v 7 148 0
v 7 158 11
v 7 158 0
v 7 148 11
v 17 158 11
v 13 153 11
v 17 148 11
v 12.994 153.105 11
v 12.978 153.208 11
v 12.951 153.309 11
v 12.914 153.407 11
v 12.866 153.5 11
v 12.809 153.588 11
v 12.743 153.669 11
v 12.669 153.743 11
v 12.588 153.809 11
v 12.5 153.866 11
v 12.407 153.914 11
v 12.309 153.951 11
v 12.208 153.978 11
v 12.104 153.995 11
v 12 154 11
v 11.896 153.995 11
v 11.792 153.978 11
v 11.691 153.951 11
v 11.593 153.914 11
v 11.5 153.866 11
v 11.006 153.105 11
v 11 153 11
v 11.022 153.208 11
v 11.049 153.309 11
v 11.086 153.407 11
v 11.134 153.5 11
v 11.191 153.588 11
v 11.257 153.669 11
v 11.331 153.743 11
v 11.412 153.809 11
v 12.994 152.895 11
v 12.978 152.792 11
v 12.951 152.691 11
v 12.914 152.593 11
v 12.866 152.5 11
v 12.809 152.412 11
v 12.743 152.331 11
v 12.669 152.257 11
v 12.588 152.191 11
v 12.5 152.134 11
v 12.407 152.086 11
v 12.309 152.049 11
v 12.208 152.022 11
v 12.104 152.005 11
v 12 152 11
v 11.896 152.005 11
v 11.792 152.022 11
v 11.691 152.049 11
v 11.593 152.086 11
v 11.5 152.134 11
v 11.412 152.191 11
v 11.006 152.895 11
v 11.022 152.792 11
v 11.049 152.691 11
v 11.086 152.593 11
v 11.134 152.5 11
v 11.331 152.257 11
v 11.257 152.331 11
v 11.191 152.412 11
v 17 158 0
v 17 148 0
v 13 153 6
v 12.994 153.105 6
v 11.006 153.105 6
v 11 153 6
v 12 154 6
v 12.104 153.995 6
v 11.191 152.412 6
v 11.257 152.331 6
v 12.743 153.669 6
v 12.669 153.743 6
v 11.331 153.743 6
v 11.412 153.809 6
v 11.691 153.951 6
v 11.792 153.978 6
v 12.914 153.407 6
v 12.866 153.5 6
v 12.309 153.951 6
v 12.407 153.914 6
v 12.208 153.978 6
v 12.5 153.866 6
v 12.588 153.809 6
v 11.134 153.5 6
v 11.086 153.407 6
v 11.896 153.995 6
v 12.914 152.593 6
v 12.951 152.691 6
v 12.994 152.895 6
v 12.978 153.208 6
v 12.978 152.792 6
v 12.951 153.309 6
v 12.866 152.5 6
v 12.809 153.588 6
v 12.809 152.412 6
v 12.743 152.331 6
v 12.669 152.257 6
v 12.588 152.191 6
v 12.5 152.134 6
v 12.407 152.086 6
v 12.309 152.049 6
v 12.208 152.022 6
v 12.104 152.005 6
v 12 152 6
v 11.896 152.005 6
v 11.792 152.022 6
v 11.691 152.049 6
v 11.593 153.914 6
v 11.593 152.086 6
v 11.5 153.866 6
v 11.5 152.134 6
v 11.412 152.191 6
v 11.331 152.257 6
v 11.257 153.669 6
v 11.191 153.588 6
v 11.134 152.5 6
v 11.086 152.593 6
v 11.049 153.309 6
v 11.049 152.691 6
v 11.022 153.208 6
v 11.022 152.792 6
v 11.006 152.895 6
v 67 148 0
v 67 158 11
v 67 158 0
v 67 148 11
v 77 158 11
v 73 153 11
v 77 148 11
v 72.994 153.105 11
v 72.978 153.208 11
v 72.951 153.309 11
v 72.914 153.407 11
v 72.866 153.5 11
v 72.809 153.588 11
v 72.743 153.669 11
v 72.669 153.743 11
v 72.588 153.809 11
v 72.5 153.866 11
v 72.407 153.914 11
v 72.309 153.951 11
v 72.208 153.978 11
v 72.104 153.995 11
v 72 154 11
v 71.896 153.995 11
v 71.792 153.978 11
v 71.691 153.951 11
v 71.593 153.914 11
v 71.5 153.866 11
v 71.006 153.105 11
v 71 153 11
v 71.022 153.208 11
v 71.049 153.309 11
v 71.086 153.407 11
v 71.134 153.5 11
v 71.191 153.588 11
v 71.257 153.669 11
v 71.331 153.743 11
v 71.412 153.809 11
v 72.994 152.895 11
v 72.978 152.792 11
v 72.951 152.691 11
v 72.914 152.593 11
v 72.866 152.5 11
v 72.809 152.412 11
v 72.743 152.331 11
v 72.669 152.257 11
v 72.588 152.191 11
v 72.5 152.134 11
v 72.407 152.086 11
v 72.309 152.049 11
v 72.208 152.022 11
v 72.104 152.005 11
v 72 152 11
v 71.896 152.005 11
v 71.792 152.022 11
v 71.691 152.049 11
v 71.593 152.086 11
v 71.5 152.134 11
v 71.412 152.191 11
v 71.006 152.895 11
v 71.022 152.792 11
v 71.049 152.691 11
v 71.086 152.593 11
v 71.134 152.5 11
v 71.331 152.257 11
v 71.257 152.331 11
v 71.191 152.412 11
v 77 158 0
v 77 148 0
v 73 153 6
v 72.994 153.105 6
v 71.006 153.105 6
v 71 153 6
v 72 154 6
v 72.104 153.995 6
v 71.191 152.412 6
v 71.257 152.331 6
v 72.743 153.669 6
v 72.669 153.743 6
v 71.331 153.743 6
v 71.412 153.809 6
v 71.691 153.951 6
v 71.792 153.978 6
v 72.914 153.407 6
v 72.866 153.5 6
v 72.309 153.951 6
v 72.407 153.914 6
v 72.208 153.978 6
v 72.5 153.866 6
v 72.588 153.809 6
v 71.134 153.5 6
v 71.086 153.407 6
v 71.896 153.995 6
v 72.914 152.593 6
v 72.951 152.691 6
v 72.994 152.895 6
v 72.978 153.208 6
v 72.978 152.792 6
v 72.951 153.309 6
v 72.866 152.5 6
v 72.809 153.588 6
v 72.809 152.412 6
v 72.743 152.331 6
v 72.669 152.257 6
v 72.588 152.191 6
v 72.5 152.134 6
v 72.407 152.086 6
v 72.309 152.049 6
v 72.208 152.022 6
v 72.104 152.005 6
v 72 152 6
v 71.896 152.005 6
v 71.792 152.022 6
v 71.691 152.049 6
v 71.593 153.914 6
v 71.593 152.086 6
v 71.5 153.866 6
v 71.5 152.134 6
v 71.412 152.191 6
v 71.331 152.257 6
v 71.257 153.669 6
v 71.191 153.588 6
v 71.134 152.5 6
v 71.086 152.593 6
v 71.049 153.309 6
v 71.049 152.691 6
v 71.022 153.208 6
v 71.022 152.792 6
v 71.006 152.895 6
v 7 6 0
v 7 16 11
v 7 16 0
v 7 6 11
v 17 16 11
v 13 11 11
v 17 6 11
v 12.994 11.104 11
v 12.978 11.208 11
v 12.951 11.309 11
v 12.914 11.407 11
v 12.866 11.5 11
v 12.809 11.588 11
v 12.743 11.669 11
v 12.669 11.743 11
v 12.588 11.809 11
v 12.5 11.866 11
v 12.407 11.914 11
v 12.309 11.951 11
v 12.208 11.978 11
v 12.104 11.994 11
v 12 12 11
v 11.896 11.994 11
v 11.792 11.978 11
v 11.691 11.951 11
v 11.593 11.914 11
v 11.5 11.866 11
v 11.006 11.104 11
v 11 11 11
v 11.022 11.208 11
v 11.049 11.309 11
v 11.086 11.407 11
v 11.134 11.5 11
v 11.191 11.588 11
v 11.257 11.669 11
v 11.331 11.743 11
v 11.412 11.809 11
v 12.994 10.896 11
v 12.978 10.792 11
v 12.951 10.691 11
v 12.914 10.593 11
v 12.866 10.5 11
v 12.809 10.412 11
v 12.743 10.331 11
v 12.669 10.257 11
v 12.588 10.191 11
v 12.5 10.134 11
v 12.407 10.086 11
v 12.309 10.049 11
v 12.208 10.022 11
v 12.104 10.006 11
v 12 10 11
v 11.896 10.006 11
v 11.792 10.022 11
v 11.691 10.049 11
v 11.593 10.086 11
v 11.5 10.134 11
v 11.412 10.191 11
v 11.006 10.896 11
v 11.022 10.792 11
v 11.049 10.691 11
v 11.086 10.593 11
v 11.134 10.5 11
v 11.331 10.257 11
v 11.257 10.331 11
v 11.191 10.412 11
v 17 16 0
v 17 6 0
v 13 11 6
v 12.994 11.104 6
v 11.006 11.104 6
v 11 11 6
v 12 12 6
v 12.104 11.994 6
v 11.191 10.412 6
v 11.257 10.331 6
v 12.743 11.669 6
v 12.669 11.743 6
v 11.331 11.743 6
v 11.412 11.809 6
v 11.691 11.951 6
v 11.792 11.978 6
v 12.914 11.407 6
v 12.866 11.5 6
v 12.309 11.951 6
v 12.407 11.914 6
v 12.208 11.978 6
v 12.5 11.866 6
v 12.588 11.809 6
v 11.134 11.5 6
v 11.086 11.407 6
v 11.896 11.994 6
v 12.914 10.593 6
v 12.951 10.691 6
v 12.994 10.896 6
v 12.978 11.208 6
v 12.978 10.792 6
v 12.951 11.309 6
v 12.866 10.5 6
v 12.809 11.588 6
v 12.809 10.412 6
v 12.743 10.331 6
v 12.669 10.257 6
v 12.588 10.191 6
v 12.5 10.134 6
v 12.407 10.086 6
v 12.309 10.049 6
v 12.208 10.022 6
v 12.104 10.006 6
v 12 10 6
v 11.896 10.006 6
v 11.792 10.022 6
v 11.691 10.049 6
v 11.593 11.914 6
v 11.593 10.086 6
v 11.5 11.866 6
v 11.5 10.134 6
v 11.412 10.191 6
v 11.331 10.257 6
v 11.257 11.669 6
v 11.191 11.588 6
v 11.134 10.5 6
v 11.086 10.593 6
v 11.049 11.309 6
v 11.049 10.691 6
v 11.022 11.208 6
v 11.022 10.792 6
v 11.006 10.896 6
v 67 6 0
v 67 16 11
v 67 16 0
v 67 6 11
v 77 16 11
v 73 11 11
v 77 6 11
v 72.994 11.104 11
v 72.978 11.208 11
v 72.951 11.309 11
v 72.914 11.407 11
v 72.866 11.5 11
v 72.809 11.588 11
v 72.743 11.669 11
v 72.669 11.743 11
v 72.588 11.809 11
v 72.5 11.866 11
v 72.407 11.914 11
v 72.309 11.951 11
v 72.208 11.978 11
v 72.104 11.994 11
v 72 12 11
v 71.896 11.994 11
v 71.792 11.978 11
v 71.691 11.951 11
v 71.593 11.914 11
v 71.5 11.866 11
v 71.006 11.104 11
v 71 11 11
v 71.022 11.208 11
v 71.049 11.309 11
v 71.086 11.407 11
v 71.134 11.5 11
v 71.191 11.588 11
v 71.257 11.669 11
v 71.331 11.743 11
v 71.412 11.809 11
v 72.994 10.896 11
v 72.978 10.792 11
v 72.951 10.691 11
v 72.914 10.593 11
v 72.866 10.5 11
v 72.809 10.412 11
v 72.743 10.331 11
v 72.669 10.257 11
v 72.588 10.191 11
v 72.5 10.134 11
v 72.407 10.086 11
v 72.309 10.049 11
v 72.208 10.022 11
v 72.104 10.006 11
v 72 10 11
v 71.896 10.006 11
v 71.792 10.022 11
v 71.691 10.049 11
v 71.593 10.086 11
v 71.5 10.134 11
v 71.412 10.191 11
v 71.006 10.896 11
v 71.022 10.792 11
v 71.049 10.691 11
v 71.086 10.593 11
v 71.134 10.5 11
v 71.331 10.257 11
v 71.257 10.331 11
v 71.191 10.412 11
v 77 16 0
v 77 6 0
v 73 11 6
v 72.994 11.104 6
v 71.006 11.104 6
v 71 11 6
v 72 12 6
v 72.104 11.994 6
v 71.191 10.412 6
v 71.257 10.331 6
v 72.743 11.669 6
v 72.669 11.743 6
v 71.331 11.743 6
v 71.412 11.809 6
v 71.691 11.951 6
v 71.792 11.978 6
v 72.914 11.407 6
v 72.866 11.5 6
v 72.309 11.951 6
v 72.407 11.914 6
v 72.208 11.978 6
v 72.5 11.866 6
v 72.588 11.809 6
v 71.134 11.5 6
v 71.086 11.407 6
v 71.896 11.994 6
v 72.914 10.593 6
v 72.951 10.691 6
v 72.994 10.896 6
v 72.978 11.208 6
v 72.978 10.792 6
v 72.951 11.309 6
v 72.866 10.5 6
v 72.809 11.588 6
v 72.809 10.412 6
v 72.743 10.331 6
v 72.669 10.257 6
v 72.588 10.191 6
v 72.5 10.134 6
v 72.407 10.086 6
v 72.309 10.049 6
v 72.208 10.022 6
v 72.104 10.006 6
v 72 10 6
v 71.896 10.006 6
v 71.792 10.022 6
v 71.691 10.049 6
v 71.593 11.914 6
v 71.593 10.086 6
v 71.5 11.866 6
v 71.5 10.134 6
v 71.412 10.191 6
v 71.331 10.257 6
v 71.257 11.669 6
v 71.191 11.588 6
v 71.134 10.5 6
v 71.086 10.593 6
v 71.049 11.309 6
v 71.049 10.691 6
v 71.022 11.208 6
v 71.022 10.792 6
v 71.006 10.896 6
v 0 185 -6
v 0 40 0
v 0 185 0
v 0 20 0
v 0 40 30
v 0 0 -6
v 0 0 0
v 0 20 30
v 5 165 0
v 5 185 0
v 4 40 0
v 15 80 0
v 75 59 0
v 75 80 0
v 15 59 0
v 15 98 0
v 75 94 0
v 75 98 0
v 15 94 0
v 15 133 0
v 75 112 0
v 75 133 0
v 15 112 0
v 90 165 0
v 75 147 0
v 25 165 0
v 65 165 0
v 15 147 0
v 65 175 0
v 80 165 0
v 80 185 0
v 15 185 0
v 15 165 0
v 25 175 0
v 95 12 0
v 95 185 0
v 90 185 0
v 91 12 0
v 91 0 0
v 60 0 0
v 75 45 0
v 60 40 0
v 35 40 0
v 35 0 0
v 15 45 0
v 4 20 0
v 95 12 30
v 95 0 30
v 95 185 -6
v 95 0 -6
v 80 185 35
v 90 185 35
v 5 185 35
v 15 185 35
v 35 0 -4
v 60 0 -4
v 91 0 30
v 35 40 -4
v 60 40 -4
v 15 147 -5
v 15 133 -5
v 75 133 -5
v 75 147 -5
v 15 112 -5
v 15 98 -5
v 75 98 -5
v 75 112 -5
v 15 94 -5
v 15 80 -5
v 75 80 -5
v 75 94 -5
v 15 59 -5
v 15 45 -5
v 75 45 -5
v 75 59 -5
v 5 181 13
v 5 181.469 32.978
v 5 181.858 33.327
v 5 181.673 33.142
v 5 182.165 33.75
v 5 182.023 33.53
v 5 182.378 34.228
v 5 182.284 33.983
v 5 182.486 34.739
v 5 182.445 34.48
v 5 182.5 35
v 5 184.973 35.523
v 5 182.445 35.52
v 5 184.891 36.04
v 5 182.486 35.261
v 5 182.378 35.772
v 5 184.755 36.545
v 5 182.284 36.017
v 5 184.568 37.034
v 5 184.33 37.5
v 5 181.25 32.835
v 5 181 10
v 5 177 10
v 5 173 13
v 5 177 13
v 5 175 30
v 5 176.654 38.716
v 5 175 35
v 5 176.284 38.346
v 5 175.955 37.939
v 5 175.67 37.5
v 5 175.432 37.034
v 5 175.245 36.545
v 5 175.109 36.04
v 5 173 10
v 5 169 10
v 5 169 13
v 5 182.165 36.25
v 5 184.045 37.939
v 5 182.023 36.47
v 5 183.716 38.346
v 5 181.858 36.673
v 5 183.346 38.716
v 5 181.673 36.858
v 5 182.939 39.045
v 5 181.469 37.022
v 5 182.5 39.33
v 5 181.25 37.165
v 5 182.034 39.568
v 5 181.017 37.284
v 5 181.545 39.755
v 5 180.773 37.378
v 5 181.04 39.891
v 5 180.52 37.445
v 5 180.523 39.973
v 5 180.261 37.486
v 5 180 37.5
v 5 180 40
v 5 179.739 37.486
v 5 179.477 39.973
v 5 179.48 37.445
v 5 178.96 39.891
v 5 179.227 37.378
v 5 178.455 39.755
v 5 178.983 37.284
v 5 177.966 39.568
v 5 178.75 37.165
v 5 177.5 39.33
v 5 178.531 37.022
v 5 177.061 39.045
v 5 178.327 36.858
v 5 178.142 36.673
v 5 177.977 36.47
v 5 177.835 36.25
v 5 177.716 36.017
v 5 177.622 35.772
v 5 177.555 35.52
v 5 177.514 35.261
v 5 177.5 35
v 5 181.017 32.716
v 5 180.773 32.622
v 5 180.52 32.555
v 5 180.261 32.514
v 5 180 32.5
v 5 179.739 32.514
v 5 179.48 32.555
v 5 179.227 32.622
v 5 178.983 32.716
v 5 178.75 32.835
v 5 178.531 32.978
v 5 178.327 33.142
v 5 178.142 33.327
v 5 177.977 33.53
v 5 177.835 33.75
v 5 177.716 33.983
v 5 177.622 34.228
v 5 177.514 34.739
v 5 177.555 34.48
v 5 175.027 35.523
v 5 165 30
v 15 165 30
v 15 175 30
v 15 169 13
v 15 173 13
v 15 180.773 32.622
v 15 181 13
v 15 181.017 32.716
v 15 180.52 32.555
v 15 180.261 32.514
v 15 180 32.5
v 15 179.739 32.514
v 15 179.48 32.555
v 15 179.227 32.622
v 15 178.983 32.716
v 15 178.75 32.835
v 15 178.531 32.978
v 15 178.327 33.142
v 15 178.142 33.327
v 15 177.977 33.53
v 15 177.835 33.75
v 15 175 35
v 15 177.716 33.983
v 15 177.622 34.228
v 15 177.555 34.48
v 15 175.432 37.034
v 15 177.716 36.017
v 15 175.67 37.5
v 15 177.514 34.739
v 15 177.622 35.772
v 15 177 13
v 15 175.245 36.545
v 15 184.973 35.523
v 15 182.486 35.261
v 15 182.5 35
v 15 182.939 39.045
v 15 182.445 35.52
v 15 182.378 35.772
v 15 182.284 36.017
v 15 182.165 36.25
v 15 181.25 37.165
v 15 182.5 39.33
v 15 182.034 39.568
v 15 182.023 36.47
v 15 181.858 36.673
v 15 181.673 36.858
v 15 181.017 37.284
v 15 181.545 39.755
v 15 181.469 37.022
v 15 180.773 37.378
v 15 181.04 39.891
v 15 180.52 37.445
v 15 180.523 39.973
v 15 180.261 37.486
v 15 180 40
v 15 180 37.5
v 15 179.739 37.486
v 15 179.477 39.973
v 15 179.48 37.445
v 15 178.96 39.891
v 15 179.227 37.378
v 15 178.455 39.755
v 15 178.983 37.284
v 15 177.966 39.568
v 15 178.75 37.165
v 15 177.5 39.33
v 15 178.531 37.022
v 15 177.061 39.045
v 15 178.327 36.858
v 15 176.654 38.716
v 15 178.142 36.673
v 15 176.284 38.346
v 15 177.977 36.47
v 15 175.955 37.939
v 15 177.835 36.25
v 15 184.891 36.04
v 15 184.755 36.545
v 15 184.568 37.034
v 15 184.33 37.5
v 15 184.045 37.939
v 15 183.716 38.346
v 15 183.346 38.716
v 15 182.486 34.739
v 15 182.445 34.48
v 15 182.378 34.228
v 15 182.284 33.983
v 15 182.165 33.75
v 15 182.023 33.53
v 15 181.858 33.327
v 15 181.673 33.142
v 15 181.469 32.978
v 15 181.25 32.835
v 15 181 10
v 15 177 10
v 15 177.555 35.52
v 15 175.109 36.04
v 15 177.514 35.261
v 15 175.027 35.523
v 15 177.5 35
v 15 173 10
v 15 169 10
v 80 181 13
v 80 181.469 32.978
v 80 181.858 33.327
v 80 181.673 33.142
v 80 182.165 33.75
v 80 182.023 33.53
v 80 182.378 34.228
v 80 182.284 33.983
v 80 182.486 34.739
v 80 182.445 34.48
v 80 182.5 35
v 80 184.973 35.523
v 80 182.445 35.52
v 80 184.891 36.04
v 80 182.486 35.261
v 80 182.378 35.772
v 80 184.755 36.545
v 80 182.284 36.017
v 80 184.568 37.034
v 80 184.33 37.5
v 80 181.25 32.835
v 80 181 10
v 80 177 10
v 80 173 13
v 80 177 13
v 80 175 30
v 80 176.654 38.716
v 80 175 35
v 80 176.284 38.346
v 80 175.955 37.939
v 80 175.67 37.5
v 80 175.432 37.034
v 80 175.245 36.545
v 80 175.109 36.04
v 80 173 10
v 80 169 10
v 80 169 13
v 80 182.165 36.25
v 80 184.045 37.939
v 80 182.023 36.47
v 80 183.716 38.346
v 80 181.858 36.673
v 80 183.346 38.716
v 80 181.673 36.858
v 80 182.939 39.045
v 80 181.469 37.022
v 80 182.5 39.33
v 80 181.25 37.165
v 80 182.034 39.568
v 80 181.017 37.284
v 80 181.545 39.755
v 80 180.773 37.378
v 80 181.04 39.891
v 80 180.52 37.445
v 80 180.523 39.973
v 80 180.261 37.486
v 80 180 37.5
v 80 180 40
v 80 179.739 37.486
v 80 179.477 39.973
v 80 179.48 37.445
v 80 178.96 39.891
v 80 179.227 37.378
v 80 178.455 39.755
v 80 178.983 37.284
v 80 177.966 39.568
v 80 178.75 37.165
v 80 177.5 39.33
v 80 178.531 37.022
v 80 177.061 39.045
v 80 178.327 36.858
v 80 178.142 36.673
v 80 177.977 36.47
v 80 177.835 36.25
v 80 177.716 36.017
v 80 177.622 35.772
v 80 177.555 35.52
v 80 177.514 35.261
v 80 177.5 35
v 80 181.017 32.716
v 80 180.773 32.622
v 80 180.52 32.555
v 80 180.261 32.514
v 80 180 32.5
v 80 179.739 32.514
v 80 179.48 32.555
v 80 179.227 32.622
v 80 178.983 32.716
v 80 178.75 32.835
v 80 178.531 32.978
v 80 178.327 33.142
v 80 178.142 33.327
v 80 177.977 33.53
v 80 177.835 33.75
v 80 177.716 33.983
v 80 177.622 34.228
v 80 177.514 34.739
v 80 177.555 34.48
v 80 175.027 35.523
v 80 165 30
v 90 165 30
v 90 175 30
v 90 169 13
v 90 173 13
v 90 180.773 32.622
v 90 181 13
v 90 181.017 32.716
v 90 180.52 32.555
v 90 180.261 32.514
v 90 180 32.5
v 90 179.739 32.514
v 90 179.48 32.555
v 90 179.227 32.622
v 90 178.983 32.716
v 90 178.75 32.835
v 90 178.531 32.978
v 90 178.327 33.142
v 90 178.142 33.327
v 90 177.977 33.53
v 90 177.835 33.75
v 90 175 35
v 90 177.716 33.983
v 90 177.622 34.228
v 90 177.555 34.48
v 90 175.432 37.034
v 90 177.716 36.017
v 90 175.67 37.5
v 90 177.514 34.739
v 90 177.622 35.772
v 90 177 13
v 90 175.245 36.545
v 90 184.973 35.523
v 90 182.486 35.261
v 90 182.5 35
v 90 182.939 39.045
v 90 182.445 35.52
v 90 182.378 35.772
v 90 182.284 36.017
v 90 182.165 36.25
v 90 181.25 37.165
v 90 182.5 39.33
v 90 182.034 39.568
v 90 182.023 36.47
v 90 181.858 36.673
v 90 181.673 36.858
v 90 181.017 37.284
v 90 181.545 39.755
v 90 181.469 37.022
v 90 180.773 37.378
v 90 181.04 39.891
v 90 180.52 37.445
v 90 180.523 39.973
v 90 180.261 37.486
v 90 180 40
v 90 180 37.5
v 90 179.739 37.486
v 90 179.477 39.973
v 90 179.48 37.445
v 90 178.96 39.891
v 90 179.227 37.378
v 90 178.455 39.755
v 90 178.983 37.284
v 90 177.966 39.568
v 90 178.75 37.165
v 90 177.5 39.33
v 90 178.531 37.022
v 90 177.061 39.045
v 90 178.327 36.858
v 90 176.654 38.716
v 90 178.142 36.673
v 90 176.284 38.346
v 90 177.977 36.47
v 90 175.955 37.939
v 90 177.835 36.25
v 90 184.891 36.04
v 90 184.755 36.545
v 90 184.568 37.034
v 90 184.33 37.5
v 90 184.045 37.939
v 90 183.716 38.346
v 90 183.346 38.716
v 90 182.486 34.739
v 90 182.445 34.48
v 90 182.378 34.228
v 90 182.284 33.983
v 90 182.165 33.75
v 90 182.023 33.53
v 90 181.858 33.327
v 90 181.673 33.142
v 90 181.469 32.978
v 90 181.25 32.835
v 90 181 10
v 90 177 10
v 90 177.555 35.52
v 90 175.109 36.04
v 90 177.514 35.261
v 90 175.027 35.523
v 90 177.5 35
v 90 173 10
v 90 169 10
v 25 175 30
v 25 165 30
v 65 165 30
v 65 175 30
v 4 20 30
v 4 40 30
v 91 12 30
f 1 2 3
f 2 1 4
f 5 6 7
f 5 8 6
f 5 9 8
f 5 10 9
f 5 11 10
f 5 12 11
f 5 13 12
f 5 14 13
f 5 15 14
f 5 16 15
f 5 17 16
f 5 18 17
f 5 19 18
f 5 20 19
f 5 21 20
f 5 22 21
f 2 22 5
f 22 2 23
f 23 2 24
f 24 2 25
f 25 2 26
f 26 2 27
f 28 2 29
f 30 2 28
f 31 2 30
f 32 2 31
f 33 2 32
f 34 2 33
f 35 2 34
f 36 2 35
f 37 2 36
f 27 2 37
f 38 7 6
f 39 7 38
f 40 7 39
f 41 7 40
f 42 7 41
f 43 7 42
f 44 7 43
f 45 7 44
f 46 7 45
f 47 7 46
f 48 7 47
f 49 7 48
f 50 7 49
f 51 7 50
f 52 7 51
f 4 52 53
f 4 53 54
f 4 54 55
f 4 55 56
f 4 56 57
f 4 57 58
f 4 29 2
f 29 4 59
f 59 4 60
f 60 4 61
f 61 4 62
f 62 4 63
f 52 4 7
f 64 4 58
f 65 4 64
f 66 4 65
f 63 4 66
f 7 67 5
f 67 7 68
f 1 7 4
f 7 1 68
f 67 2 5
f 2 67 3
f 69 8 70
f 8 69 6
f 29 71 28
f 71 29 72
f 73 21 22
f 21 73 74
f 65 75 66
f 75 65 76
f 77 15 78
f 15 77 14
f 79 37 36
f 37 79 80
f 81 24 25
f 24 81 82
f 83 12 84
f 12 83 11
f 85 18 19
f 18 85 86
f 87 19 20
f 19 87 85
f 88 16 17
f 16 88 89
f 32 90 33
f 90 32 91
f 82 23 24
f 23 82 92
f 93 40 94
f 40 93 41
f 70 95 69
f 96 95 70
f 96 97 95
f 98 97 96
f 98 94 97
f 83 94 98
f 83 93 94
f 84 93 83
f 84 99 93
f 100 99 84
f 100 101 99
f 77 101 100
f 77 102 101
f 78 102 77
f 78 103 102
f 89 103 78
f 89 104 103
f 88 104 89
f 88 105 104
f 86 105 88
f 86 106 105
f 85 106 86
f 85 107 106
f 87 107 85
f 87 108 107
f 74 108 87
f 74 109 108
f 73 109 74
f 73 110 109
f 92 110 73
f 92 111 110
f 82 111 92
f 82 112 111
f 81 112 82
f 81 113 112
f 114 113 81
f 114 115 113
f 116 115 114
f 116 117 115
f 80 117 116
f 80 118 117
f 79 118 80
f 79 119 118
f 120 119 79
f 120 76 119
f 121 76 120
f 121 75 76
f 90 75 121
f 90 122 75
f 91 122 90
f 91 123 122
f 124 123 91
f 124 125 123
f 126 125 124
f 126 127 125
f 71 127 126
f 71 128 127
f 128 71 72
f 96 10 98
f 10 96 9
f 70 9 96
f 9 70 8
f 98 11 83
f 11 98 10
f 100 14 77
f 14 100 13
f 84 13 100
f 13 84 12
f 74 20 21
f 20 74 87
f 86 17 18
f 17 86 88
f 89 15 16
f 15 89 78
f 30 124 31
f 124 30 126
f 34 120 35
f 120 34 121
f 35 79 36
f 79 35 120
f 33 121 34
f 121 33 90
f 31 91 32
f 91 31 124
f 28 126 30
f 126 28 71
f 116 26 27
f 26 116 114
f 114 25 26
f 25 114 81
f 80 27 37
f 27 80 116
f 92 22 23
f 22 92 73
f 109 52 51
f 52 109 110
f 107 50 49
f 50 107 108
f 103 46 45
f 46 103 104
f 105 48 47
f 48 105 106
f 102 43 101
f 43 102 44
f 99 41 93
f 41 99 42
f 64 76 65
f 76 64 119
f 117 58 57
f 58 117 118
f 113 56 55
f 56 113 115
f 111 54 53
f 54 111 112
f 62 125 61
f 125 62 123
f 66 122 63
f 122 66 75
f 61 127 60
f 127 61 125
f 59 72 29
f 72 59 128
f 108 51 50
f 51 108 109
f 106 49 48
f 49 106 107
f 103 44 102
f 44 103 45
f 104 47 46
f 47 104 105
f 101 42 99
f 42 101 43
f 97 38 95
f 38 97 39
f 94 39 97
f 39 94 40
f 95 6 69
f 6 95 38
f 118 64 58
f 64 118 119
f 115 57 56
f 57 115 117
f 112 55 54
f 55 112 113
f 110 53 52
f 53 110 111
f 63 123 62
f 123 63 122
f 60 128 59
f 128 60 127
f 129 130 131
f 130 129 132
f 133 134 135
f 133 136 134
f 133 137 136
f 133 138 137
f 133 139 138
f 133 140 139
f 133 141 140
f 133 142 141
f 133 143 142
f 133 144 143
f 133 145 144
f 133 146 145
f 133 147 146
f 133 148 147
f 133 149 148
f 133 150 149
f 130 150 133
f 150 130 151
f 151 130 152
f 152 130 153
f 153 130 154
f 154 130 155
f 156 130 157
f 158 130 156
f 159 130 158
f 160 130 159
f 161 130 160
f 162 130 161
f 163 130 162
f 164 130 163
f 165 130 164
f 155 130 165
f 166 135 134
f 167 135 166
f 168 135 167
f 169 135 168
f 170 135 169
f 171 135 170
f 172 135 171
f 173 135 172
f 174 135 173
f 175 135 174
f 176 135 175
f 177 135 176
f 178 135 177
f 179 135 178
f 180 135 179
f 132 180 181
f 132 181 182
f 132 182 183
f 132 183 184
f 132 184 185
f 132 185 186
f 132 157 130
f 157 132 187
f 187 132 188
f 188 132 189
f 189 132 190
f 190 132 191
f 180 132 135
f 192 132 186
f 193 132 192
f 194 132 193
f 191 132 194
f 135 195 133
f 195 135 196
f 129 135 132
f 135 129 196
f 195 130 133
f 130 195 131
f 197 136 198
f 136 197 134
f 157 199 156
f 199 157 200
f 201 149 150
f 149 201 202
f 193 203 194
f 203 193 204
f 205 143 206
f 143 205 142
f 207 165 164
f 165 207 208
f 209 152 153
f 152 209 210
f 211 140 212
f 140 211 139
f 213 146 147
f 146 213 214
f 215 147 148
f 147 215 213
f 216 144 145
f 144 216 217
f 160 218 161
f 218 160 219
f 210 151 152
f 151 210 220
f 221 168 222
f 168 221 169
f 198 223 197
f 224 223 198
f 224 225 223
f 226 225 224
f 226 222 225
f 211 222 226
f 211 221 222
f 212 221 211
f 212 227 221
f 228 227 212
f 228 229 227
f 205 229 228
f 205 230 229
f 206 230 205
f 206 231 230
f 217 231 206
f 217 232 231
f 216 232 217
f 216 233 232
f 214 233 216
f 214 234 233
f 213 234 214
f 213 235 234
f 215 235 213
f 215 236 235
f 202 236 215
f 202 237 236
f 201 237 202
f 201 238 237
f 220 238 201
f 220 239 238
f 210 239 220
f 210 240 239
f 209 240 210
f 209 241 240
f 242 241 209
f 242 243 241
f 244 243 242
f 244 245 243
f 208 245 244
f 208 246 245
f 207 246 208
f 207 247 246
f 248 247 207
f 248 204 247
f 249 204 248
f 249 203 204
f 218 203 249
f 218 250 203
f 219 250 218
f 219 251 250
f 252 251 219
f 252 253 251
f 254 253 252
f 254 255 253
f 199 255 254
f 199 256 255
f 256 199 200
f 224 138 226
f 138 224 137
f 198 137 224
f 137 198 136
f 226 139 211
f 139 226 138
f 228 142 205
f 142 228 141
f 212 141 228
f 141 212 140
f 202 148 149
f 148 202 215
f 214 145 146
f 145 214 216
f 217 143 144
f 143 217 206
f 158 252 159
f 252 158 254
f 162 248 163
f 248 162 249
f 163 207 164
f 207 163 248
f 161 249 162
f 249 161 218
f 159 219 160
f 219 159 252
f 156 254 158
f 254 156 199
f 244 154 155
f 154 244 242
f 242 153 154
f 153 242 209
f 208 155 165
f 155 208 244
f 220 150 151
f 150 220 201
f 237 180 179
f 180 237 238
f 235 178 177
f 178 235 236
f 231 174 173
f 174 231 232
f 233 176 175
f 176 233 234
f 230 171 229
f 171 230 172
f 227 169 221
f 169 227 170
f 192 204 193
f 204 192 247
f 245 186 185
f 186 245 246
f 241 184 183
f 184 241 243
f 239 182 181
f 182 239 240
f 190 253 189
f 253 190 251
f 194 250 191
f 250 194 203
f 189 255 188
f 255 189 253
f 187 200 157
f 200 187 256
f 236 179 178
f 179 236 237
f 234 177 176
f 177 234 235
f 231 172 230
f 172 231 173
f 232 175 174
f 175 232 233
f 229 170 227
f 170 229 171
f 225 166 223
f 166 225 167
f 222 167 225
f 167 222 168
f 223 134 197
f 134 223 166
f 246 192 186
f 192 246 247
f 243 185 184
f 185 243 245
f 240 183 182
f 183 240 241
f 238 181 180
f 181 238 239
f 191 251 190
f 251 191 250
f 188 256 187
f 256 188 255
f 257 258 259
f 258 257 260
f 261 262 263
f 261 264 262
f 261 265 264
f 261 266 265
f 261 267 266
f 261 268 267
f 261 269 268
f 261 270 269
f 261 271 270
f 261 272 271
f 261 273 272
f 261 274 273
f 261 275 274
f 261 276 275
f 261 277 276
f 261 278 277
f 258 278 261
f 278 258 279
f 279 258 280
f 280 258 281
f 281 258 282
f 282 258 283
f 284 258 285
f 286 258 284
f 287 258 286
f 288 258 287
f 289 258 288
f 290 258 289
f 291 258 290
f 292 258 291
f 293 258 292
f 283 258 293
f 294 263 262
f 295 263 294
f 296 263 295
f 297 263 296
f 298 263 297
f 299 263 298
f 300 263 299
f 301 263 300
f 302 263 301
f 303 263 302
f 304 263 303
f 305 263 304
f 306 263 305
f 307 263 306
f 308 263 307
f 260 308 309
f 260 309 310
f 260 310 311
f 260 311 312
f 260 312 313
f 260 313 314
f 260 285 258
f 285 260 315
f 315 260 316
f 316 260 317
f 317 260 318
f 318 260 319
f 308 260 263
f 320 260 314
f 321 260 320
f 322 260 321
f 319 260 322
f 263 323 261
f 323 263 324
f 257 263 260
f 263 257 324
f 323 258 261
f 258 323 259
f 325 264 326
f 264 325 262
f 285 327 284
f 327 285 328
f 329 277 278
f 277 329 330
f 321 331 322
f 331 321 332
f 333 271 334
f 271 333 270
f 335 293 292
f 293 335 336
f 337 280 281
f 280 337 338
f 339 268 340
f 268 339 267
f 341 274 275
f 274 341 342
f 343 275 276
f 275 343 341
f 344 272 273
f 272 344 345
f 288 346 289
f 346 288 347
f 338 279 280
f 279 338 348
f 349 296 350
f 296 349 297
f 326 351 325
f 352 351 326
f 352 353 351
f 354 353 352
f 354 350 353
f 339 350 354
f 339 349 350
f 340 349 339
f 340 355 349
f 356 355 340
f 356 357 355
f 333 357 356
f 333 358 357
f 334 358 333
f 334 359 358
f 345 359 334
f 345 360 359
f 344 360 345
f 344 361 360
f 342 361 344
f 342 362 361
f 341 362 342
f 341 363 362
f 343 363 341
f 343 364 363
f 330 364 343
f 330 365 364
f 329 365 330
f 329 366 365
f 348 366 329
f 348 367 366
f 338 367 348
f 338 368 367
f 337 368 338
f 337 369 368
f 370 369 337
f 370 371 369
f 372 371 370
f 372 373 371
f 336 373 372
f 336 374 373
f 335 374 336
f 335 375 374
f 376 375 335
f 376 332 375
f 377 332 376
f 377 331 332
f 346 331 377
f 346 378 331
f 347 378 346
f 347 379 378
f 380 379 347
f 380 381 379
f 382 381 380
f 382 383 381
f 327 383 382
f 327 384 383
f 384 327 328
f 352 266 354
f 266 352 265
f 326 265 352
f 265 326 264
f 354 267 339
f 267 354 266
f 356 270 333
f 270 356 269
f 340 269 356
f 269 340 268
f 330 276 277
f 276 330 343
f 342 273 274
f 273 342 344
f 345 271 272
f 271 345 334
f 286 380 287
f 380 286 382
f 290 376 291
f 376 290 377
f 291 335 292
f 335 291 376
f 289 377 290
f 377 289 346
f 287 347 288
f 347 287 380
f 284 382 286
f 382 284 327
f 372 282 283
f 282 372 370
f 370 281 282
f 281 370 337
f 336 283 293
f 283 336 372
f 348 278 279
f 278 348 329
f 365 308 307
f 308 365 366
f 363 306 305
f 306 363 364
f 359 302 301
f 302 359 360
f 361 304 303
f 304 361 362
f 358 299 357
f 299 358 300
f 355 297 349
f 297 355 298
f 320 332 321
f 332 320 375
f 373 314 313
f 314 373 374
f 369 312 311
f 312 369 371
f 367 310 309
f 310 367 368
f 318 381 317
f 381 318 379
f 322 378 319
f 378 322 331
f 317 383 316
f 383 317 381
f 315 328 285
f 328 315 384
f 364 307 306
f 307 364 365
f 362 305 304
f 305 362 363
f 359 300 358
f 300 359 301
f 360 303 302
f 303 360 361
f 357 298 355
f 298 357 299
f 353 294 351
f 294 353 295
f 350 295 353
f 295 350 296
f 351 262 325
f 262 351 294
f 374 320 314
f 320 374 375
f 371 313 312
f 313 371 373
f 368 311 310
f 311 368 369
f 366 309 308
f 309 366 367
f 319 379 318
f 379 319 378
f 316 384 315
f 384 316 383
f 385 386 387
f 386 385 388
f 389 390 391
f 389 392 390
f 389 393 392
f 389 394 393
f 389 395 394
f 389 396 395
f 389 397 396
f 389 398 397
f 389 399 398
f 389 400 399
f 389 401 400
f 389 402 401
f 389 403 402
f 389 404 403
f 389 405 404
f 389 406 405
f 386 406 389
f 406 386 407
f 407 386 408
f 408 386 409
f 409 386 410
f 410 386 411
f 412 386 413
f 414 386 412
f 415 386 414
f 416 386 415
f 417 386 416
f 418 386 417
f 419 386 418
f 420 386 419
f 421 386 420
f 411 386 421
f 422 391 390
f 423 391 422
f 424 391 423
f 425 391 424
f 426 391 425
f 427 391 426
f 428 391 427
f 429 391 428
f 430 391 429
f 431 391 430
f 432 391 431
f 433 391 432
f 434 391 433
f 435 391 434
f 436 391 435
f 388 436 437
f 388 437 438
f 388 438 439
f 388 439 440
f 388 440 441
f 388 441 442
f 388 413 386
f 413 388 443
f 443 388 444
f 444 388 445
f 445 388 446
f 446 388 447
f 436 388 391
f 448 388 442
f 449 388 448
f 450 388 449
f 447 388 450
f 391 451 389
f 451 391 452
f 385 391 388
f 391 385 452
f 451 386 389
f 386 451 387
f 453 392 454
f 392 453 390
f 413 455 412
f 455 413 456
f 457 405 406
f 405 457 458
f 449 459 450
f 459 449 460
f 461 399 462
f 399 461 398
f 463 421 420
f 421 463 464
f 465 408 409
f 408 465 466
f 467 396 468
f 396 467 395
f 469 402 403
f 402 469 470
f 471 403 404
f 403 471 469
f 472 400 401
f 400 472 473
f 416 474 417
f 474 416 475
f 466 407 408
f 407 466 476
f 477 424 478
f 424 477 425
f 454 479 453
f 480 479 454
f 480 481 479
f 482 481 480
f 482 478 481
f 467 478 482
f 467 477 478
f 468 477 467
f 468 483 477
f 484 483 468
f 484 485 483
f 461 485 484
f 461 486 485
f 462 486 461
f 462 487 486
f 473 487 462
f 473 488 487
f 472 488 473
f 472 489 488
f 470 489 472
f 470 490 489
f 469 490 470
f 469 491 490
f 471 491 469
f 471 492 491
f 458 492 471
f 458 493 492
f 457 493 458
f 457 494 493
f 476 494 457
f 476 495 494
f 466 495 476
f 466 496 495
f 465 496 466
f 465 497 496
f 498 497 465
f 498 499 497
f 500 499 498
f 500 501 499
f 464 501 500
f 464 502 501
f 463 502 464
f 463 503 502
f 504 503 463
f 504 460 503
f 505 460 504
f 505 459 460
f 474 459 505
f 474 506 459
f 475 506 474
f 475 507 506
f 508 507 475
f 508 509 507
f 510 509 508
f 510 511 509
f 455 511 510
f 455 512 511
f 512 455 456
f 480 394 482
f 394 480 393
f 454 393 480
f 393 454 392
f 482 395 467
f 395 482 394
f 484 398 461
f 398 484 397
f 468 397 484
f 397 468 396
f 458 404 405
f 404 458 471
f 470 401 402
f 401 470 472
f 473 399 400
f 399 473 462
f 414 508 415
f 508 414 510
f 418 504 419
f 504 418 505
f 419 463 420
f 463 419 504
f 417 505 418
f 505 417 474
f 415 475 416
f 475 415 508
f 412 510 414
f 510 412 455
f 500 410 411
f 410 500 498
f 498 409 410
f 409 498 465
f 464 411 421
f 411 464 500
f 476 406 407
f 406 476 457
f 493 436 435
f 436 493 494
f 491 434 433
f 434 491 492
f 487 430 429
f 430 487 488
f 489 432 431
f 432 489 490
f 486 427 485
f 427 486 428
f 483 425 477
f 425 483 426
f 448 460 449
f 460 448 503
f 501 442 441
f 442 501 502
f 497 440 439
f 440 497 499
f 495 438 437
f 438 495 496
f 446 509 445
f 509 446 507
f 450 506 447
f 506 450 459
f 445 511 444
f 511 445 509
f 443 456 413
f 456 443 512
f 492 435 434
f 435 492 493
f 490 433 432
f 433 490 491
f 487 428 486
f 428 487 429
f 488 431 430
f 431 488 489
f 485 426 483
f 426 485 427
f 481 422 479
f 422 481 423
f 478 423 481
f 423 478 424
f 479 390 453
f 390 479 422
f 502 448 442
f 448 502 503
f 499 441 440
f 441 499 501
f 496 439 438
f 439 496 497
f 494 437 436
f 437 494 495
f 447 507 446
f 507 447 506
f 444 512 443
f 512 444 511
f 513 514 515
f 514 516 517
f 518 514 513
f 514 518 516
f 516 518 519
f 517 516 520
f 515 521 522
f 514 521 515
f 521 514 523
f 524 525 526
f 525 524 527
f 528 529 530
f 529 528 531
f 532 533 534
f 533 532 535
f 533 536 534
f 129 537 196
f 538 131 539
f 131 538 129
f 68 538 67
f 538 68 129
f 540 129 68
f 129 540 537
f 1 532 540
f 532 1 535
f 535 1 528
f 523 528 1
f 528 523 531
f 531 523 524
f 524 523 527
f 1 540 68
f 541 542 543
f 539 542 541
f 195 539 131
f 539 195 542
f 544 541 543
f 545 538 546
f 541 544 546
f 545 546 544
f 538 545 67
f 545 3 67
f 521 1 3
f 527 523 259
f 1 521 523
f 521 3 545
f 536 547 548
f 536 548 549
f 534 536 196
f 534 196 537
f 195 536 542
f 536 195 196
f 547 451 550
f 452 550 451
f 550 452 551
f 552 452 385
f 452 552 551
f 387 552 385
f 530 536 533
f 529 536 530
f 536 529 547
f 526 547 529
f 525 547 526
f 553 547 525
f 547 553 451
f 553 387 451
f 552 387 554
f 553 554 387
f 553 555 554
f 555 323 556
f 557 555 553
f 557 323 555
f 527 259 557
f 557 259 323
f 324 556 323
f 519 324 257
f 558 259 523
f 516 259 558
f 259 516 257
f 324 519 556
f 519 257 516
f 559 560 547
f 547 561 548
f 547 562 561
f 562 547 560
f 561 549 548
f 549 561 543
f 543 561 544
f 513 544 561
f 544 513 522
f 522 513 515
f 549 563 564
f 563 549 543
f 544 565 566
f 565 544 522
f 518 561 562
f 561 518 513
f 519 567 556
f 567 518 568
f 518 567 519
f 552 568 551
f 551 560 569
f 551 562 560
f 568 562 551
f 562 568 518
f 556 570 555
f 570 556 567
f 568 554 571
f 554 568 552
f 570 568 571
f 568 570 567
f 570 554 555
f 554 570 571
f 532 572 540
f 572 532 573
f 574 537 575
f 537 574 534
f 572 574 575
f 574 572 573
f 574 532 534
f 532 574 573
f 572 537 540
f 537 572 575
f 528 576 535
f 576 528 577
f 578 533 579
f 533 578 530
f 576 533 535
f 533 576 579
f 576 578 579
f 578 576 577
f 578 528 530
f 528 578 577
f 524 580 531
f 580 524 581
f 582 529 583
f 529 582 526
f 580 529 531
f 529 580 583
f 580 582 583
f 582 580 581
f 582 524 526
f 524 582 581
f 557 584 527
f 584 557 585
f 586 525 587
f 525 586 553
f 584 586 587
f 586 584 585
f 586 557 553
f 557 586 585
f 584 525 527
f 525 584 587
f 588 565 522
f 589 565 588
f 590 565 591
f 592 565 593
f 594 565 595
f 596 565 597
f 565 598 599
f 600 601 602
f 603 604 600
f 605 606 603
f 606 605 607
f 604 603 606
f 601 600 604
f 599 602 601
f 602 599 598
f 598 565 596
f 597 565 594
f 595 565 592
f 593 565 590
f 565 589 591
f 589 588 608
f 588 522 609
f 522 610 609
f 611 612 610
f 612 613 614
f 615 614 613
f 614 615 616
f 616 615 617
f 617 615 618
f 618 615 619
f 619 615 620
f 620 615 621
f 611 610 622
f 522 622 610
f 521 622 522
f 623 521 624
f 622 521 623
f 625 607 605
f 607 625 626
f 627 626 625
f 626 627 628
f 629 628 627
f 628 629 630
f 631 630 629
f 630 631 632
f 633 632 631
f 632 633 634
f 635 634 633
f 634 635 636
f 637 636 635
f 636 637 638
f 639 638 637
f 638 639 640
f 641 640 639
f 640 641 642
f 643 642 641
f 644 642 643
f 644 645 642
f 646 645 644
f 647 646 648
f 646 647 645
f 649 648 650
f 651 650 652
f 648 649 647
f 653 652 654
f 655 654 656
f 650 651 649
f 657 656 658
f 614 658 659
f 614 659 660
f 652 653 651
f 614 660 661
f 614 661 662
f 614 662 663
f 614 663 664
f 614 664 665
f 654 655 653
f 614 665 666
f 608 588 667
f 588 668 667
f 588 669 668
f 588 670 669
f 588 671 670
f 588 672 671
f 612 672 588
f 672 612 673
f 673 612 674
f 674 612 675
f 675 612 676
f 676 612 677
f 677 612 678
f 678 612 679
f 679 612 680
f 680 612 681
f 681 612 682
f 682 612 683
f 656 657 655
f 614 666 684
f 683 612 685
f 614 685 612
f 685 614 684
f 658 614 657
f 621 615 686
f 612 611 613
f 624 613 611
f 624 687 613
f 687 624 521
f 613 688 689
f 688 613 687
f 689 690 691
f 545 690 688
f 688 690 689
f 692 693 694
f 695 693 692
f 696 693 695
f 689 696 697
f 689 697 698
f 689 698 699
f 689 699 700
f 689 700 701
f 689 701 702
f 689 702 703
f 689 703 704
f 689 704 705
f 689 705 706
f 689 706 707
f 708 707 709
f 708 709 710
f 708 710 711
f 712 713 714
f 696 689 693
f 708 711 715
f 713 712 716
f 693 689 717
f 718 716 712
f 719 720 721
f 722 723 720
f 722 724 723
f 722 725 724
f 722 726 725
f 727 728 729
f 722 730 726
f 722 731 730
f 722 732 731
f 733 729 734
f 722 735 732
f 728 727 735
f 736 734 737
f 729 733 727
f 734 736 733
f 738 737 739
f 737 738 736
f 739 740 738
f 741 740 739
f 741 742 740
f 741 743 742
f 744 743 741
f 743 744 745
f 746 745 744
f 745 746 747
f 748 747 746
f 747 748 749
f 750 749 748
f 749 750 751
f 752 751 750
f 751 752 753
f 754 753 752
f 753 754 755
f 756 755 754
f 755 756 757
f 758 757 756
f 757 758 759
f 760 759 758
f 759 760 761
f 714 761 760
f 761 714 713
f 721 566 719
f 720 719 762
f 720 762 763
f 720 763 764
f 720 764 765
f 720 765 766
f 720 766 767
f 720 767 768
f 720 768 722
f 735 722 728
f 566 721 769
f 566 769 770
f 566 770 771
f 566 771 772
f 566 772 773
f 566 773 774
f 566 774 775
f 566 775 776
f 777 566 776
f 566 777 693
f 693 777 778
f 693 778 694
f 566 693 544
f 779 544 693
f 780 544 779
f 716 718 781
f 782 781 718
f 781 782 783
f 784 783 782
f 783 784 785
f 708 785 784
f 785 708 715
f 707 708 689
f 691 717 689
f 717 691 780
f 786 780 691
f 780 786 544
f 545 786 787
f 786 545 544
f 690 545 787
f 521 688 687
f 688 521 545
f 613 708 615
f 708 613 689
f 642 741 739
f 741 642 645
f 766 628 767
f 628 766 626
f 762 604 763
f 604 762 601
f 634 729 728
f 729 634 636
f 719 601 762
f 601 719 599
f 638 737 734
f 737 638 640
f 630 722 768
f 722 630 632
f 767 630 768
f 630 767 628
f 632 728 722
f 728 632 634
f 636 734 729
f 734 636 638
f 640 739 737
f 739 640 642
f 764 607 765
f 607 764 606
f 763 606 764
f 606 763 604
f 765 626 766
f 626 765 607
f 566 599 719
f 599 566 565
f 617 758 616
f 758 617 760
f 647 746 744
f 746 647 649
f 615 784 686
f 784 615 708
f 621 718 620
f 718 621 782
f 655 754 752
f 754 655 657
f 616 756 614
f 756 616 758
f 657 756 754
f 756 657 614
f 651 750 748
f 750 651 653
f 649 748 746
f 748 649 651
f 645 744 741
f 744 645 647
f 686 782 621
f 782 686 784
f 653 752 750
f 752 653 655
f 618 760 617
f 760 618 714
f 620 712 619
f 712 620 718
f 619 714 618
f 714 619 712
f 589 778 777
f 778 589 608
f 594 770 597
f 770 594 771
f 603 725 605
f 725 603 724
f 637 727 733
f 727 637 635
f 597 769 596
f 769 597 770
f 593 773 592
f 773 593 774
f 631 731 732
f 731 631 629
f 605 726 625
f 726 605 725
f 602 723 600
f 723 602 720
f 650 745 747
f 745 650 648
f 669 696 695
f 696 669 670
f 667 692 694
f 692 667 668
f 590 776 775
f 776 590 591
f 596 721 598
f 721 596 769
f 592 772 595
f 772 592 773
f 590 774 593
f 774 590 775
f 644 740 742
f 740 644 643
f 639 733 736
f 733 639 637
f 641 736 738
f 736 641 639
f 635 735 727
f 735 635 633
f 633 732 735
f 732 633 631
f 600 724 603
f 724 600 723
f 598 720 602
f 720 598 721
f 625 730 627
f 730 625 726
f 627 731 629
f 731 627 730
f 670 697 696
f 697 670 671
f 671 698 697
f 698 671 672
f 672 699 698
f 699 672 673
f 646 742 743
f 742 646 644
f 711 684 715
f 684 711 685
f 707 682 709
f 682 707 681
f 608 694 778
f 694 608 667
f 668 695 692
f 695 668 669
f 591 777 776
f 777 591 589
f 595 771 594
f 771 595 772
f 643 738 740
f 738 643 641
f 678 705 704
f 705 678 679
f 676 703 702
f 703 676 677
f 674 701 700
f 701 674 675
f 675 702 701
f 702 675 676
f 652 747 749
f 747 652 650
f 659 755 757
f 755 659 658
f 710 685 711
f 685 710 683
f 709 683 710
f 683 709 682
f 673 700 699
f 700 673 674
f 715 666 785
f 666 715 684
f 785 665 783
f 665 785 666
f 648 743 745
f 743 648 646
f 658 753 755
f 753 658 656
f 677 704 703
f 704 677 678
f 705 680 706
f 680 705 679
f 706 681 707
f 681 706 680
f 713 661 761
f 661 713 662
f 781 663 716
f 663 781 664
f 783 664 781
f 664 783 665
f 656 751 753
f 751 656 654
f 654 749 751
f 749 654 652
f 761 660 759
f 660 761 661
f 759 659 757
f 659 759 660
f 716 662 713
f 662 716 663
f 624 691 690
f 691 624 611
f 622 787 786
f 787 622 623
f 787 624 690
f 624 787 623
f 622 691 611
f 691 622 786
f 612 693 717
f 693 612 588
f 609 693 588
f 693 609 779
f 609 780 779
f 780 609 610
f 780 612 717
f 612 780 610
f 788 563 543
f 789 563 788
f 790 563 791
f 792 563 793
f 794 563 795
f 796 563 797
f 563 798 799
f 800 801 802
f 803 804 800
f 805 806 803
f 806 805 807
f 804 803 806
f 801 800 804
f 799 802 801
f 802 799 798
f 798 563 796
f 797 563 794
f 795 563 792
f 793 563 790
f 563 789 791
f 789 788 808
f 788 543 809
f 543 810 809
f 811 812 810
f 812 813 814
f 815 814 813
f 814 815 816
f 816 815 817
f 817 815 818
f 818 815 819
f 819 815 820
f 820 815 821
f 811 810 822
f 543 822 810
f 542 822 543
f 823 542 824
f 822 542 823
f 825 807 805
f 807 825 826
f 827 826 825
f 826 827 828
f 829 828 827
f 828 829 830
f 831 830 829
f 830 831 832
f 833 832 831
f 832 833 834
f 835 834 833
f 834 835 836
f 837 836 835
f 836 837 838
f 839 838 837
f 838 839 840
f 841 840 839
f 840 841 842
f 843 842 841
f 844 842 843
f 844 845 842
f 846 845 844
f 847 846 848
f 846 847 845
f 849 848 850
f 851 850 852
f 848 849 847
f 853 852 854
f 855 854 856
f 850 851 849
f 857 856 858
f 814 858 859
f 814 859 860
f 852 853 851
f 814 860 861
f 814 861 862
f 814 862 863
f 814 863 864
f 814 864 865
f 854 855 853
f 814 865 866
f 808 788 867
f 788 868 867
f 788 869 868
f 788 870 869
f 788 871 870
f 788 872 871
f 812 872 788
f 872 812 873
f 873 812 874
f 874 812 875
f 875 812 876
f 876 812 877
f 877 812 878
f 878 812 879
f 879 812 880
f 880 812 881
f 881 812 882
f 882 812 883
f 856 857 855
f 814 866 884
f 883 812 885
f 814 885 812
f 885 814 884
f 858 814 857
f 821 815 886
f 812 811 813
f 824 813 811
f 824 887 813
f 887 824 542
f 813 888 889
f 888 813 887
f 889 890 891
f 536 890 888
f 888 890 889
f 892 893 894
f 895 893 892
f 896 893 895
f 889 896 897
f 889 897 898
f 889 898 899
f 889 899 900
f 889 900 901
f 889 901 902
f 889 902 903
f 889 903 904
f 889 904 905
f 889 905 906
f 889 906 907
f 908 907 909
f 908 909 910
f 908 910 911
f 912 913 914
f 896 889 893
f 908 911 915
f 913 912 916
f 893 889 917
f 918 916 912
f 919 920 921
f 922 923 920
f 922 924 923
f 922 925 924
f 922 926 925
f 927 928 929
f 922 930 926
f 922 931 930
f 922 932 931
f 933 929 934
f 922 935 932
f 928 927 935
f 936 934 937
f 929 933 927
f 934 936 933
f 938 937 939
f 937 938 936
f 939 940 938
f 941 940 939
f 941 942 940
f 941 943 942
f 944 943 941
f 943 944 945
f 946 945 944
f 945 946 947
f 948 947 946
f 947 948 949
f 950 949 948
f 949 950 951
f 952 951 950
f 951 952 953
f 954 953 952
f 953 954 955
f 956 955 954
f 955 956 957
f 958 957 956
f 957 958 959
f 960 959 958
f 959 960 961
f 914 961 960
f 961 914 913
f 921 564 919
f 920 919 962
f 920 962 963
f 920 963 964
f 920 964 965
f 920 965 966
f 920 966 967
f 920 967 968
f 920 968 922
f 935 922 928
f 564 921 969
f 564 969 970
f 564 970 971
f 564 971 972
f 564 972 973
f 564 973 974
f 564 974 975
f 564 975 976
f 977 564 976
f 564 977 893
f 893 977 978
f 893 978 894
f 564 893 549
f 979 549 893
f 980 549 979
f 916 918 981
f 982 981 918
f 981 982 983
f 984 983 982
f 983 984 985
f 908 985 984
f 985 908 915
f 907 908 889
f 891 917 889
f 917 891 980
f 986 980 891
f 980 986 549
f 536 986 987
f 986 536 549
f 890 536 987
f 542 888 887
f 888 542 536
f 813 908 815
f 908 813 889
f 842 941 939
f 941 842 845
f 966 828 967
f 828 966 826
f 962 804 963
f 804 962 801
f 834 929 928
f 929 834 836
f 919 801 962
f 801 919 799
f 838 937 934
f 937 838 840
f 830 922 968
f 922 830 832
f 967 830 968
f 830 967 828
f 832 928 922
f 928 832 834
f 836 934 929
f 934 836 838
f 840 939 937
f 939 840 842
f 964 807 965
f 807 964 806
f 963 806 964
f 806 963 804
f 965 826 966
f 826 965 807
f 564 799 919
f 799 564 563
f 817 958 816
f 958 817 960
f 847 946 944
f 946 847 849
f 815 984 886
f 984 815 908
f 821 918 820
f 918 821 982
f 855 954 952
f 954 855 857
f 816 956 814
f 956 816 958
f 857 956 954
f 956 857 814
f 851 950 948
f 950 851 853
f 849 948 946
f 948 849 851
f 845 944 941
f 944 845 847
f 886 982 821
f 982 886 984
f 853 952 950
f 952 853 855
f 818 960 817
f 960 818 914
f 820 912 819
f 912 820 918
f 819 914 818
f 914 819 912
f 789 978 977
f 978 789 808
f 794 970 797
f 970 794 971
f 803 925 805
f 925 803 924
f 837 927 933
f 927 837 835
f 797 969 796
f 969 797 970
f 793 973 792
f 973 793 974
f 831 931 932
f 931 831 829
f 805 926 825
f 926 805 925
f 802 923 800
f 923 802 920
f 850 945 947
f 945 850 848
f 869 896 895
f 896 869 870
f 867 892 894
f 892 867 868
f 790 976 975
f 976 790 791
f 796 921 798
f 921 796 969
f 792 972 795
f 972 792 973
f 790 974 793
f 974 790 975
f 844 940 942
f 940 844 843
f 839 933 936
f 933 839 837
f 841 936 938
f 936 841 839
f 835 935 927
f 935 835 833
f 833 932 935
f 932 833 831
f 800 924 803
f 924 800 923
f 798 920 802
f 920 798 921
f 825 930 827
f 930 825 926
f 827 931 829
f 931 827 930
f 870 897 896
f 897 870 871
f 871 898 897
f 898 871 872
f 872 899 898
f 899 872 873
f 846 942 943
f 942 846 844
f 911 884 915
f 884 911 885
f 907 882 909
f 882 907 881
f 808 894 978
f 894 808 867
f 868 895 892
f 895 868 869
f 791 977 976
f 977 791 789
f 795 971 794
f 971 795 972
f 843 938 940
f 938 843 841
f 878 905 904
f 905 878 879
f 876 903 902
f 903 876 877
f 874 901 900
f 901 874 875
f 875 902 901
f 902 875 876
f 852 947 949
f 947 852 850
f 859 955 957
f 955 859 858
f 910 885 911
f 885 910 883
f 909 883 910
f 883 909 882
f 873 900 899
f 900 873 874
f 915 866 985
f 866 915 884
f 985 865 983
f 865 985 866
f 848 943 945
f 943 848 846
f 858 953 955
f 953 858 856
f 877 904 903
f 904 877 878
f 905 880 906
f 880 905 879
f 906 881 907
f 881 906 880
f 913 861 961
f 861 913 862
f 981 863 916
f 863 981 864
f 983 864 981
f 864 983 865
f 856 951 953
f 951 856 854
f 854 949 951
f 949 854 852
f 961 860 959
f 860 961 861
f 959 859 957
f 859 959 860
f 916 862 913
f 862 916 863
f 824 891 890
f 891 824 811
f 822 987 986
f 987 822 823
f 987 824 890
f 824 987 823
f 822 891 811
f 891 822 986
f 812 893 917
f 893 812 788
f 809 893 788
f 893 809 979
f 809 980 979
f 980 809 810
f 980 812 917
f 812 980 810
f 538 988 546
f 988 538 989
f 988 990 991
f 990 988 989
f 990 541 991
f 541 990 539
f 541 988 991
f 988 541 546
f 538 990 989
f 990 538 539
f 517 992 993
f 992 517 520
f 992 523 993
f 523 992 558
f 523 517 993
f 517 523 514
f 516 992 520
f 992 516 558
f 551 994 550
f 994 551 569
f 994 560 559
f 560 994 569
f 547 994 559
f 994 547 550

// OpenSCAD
$fn=60;

// methoden
module holder(edge=[0,0,0]) {
    translate(edge){
        difference(){
            union() {
                cube([10,20,30]);
                translate([0,10,0]) cube([10,10,35]);
                translate([0,15,35]) rotate([0,90,0]) cylinder(h=10, d=10);
            };
            translate([0,15,35]) rotate([0,90,0]) cylinder(h=10, d=5);
            translate([0,4,10]) cube([10,4,3]); 
            translate([0,12,10]) cube([10,4,3]); 
        };
    };
};

module pcbHolder(center=[0,0,0],h=12,d=10, screw=2) {
    translate(center){
        difference() {
            union() {
                cube([d,d,h], center=true);
            };
            translate([0,0,1]) cylinder(h=h+1, r=screw/2);
        };
    };
};


// main
translate([0,0,-6]) difference() {
    cube([95,185,6]);
    // for clamp
    translate([35,0,2]) cube([25,40,5]);
    // for resistors
    translate([15,133,1]) cube([60,14,5]);
    translate([15,098,1]) cube([60,14,5]);
    translate([15,080,1]) cube([60,14,5]);
    translate([15,045,1]) cube([60,14,5]);
}
// stopper
translate([25,165,0]) cube([40,10,30]);
translate([0,20,0]) cube([4,20,30]);
translate([91,0,0]) cube([4,12,30]);

// holder
holder(edge=[5,165,0]);
holder(edge=[80,165,0]);
pcbHolder([12,153,5]);
pcbHolder([72,153,5]);
pcbHolder([12,11,5]);
pcbHolder([72,11,5]);
